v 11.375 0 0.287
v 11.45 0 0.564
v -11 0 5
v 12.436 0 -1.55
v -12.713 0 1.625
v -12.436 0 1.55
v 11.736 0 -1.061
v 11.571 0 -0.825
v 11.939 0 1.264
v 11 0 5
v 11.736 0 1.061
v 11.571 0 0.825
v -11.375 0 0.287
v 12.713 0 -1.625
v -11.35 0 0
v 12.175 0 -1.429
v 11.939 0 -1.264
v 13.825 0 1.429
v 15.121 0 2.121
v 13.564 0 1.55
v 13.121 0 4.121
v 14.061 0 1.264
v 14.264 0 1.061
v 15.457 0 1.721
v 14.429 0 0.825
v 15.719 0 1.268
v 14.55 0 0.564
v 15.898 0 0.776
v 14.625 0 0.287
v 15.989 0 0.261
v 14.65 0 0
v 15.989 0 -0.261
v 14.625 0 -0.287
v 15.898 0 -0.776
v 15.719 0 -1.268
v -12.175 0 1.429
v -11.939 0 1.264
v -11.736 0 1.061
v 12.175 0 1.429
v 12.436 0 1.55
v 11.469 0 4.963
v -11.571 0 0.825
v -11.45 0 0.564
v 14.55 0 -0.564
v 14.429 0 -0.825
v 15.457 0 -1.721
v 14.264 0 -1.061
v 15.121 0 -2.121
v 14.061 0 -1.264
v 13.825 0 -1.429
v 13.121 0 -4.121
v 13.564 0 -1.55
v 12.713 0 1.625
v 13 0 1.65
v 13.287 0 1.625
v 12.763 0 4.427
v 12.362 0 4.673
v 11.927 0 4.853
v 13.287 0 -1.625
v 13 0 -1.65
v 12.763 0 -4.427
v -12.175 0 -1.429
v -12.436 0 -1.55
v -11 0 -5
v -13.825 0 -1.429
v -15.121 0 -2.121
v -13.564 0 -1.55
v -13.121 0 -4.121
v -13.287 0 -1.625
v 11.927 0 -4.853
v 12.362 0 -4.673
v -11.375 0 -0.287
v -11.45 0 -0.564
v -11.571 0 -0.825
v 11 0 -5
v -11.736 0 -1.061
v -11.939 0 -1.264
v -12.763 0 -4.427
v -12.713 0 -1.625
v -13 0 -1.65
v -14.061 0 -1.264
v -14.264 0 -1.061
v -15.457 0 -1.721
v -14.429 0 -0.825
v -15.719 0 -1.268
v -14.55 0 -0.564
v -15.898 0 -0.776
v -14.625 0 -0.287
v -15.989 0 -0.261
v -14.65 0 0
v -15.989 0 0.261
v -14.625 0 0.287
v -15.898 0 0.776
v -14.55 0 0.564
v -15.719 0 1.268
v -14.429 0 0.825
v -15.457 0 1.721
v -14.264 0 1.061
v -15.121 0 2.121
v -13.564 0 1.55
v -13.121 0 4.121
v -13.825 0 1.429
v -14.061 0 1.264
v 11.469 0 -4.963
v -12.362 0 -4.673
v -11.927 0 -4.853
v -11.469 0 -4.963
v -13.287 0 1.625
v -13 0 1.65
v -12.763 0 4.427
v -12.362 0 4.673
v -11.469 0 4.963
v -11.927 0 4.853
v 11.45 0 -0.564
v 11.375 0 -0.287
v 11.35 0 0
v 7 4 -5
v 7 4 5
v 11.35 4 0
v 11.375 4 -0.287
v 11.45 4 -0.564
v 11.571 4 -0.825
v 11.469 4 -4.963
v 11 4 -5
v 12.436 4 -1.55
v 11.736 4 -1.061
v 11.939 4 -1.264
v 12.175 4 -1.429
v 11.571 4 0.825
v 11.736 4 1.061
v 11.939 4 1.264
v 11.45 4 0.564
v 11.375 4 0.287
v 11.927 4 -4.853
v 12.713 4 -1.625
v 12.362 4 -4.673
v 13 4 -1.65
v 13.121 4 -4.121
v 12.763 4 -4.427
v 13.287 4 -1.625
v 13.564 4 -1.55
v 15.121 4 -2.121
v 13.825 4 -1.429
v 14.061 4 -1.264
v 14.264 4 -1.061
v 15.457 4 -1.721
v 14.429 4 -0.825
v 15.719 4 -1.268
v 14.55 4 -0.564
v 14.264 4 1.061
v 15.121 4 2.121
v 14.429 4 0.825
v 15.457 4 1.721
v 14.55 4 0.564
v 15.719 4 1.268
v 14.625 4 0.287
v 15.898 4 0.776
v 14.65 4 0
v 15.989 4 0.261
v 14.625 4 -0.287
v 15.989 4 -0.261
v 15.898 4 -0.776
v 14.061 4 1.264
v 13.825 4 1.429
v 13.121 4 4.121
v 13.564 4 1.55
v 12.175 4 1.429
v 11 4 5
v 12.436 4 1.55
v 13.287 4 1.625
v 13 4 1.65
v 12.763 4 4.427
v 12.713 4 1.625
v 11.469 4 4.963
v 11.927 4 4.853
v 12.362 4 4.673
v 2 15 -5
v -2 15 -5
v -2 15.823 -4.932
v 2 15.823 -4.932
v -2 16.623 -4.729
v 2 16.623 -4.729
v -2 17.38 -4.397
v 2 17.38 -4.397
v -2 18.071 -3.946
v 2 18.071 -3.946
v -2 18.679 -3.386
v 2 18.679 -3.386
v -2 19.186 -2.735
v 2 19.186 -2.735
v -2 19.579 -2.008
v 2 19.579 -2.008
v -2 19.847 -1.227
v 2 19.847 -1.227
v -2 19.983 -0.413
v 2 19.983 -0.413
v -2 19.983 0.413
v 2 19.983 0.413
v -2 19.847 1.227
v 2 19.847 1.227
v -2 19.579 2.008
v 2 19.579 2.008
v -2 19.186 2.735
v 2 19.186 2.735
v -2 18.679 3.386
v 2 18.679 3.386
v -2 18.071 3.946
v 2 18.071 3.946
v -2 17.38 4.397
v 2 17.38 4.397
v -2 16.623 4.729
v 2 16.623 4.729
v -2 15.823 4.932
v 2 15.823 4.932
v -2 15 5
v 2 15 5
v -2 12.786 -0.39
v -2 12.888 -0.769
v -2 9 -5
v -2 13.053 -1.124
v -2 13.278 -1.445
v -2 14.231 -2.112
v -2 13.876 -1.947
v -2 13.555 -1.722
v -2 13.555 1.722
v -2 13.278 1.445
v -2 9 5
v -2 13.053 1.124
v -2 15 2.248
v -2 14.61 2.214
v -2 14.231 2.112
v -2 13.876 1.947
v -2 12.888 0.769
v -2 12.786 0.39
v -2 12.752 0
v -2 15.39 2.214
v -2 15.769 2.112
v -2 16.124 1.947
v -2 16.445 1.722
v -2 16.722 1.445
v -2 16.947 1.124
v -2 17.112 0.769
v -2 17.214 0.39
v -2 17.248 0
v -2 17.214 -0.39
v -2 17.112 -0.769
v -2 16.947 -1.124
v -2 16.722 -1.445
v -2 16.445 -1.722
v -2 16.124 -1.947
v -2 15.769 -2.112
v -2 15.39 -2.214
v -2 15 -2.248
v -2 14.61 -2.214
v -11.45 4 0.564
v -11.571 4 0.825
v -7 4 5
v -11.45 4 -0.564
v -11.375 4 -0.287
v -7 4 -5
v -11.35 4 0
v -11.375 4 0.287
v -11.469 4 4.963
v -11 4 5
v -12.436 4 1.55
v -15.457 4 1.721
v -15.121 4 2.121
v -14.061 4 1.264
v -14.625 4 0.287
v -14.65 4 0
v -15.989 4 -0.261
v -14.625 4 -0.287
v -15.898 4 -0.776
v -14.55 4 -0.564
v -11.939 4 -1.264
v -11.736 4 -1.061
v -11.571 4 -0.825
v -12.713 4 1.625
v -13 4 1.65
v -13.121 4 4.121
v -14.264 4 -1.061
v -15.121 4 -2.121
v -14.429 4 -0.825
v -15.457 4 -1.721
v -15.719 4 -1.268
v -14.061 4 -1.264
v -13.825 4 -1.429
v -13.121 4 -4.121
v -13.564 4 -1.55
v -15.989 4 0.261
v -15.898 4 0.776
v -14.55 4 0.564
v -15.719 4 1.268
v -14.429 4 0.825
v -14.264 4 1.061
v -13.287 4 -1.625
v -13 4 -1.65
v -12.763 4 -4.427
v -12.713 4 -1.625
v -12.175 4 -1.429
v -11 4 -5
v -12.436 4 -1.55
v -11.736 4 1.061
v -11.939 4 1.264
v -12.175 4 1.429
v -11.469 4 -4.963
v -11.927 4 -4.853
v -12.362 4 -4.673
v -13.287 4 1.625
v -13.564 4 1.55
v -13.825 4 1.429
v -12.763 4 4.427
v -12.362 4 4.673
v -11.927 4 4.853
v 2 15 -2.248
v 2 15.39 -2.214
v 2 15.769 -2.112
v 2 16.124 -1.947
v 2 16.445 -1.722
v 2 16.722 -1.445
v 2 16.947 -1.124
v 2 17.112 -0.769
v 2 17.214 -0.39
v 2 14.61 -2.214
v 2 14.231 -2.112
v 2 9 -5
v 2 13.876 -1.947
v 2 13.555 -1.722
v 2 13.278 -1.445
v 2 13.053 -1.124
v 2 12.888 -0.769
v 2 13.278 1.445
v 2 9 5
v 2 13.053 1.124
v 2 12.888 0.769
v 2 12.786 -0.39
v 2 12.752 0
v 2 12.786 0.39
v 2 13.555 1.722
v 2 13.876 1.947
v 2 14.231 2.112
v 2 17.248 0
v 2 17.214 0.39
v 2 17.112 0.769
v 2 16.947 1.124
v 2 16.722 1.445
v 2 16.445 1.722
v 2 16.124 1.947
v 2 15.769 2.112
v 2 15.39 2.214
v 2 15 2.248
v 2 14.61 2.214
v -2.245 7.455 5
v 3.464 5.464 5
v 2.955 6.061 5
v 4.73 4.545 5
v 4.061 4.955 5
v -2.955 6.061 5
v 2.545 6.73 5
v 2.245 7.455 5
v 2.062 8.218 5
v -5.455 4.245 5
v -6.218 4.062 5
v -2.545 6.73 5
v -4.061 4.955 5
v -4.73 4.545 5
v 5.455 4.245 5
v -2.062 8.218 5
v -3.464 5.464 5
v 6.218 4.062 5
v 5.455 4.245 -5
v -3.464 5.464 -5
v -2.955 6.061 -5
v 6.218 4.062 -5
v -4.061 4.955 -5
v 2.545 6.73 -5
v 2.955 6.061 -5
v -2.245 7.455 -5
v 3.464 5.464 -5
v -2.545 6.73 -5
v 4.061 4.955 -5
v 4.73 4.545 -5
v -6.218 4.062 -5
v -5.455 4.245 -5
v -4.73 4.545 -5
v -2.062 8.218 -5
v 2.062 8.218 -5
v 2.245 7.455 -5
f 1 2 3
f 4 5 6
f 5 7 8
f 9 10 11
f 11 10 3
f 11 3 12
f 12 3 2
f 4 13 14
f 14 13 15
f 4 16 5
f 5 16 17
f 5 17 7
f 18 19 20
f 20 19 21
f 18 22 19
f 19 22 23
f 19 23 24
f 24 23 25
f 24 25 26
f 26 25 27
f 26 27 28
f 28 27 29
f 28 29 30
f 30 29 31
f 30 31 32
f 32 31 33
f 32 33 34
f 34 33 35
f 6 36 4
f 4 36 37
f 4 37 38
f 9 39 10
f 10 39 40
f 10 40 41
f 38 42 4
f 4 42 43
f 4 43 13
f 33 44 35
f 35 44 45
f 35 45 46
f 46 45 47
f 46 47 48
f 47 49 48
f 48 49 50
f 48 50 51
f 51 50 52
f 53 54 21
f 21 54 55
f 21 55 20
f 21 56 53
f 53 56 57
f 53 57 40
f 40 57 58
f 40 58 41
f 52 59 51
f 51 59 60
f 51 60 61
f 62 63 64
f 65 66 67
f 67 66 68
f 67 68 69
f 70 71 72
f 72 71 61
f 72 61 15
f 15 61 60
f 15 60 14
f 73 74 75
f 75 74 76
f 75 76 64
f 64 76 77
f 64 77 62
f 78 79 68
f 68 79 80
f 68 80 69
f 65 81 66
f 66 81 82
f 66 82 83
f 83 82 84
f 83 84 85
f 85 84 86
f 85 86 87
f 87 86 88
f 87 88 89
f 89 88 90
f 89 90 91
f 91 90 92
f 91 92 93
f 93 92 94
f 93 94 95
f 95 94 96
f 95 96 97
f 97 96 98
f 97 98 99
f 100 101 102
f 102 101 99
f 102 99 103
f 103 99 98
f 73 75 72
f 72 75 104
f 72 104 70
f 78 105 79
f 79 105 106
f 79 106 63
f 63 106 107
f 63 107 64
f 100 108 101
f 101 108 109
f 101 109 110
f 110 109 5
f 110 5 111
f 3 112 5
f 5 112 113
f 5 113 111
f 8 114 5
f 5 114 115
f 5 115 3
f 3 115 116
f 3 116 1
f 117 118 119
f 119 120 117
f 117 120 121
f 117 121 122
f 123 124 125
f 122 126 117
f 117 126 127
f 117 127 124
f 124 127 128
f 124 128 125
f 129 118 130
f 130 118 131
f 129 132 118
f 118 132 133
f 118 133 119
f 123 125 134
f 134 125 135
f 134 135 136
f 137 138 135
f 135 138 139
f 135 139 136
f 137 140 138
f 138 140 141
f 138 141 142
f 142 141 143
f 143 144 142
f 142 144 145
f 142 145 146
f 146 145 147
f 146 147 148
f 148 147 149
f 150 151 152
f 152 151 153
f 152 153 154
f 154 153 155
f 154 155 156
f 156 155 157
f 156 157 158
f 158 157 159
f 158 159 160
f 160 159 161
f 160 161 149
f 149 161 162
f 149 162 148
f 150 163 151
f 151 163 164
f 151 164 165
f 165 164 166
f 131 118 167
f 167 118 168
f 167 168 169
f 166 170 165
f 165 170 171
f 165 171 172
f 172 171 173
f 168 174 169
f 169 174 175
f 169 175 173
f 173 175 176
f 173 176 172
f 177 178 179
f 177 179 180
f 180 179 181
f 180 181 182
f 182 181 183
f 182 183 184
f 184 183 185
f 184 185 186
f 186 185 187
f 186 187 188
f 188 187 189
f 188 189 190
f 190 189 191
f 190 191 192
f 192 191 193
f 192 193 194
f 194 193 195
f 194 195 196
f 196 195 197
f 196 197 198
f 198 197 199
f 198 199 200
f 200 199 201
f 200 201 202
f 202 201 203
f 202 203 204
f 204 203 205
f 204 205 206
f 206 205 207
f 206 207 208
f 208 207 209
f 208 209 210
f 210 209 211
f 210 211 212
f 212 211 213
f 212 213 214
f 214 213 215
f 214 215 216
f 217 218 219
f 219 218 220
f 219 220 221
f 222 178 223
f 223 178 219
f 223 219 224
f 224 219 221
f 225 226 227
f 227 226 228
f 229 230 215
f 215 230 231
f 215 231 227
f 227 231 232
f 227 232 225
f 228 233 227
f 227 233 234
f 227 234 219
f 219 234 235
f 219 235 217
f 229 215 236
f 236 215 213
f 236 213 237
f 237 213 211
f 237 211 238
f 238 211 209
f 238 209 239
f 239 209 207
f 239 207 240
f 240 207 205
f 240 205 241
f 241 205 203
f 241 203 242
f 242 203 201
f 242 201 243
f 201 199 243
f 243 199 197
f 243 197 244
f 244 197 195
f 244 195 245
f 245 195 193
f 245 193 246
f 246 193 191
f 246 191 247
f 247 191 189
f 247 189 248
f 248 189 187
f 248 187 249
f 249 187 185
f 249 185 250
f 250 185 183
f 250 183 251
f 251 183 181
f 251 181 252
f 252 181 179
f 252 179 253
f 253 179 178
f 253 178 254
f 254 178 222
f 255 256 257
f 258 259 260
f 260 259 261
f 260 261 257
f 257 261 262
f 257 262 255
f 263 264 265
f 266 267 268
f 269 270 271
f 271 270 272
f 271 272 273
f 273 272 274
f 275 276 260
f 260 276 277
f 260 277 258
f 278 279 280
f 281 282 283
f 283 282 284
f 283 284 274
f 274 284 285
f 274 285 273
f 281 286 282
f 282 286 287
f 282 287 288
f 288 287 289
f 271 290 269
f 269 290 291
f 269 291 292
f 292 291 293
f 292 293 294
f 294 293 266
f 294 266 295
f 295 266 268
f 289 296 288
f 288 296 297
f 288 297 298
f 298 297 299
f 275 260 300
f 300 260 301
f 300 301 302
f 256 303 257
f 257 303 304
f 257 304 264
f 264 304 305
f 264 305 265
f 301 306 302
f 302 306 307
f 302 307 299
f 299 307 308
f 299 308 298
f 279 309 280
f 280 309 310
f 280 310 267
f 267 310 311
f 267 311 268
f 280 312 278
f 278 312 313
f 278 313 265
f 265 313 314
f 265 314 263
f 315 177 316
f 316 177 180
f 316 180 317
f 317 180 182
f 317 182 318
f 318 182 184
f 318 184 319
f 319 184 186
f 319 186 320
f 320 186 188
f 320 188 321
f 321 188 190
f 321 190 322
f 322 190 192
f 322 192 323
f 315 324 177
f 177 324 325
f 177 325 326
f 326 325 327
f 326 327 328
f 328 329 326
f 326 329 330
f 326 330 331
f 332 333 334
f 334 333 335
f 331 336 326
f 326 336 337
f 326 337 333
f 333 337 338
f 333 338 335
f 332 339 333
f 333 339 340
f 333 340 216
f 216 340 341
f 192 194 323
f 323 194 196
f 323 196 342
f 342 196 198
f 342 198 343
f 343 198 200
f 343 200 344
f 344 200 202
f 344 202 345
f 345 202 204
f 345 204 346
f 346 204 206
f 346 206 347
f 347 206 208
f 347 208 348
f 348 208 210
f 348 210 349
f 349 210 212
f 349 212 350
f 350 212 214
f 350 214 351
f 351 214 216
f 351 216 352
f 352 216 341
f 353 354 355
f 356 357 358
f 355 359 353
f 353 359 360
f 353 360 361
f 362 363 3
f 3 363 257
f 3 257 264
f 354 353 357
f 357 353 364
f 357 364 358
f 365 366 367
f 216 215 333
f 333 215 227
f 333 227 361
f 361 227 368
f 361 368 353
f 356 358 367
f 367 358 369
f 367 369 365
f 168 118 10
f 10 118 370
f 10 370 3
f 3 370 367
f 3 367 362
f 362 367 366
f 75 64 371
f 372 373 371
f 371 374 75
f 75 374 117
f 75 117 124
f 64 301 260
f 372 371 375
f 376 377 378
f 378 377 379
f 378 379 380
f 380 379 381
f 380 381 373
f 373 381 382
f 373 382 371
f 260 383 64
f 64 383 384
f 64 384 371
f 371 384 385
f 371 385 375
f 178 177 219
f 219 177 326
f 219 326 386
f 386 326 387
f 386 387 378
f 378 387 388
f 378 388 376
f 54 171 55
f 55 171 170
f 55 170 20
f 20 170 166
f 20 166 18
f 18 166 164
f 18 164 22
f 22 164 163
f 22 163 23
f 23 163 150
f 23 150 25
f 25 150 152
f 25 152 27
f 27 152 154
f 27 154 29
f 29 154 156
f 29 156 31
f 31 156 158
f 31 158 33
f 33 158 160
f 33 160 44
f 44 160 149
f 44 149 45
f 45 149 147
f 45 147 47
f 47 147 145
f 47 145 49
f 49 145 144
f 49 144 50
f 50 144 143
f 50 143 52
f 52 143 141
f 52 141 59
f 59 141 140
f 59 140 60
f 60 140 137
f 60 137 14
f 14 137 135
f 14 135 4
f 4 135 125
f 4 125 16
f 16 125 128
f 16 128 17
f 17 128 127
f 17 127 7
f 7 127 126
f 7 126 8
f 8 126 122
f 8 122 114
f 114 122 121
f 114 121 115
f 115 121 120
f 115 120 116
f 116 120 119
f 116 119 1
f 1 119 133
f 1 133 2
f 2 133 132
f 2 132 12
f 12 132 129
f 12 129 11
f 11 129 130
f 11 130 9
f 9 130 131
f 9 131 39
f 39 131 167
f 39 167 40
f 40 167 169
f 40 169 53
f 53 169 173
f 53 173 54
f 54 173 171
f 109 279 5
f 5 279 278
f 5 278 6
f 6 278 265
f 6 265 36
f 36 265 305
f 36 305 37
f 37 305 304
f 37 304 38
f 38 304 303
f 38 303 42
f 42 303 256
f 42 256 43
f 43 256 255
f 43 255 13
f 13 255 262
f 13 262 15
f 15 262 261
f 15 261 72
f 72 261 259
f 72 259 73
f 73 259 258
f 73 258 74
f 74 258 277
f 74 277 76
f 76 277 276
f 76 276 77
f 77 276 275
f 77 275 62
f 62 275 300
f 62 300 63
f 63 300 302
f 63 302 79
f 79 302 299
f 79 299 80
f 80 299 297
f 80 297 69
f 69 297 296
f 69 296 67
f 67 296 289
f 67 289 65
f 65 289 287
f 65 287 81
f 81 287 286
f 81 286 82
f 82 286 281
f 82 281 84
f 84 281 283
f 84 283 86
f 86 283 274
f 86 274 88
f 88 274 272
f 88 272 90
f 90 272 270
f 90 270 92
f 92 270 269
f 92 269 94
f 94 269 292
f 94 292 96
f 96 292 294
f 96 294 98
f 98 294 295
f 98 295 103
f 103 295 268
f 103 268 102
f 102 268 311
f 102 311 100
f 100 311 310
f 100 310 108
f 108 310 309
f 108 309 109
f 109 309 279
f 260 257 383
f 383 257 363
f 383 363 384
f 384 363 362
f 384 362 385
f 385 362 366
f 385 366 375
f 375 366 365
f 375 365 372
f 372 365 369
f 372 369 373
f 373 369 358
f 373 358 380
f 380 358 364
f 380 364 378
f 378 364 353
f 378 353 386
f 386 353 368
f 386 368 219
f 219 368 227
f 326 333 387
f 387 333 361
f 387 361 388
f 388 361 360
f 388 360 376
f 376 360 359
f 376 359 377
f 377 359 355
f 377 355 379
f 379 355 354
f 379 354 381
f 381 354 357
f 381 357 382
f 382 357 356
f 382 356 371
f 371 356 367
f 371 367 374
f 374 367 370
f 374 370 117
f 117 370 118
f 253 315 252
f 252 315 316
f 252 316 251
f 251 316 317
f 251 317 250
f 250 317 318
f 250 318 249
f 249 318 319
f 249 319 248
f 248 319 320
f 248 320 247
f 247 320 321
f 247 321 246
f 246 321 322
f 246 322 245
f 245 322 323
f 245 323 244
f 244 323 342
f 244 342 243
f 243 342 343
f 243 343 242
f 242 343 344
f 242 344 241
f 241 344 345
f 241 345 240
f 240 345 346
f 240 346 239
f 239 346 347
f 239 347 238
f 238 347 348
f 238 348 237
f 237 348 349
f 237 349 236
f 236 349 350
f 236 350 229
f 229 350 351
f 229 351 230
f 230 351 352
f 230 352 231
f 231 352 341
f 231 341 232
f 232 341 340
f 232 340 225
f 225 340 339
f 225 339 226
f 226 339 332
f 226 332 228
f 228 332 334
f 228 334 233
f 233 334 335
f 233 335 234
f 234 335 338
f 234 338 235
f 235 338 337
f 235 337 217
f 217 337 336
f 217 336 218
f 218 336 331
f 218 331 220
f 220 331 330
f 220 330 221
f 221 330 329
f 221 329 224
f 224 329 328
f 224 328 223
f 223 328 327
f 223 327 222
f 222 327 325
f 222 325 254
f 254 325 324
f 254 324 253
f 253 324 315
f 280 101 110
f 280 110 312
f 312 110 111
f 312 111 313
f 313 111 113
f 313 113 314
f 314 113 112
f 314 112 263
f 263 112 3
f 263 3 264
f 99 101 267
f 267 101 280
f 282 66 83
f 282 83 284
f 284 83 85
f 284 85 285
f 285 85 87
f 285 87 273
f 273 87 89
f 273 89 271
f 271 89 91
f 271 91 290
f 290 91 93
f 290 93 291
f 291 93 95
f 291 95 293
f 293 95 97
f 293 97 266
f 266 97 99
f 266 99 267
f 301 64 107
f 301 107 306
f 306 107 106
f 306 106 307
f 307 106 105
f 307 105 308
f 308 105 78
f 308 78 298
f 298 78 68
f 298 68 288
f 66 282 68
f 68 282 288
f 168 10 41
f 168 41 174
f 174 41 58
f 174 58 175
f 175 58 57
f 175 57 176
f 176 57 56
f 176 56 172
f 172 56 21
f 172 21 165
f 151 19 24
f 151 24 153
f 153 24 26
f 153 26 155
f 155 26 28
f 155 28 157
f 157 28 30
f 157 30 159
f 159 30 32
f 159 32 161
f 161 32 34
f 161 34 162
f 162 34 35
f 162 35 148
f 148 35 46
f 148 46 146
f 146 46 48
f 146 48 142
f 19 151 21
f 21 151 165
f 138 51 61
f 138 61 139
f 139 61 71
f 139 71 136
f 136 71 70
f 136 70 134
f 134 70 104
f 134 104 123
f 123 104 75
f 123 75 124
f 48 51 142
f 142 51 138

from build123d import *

# Parameters (mm, degrees)
BOSS_EXTRUDE1_DEPTH         = 5
F_3_3_3_3_DIAMETER_HOLE1_D  = 3.3
FILLET1_RADIUS              = 5
FILLET1_LENGTH              = 4
FILLET2_R                   = 5
F_16_0_177_DIAMETER_HOLE1_D = 4.4958
CUT_EXTRUDE1_DEPTH          = 4


# Read off the part's stored shape, not the designer's step: Cut-Extrude1
with BuildPart() as part:
    # Sketch1 → Boss-Extrude1 (new, symmetric)
    with BuildSketch(Plane.XY):
        Polygon((-16, 0), (16, 0), (16, 4), (2, 4), (2, 20), (-2, 20), (-2, 4), (-16, 4), align=None)
    extrude(amount=BOSS_EXTRUDE1_DEPTH, both=True)

    # Ø3.3 (3.3) Diameter Hole1 (through all)
    with Locations(Plane(origin=(0, 4, 0), x_dir=(1, 0, 0), z_dir=(0, 1, 0))):
        with Locations((-13, 0), (13, 0)):
            Hole(F_3_3_3_3_DIAMETER_HOLE1_D / 2)

    # Fillet1: full round fillet: the end face becomes a half cylinder, R = half its width
    fillet1_face = Plane((0, 20, 0), x_dir=(-1, 0, 0), z_dir=(0, 1, 0))  # on the end face: x along it, z out of the body
    fillet1_slab = fillet1_face.offset(-FILLET1_RADIUS / 2) * Box(FILLET1_LENGTH, 2 * FILLET1_RADIUS, FILLET1_RADIUS, mode=Mode.PRIVATE)  # the body's end, R deep
    fillet1_round = Plane((0, 15, 0), x_dir=(0, 1, 0), z_dir=(-1, 0, 0)) * Cylinder(FILLET1_RADIUS, FILLET1_LENGTH, mode=Mode.PRIVATE)  # its axis R under the face
    add(fillet1_slab - fillet1_round, mode=Mode.SUBTRACT)

    # Fillet2
    fillet2_edges = [part.edges().sort_by_distance(p)[0] for p in [
        (2, 4, 0),
        (-2, 4, 0),
    ]]
    fillet(fillet2_edges, radius=FILLET2_R)

    # #16 (0.177) Diameter Hole1 (through all)
    with Locations(Plane(origin=(2, 0, 0), x_dir=(0, 0, -1), z_dir=(1, 0, 0))):
        with Locations((0, 15)):
            Hole(F_16_0_177_DIAMETER_HOLE1_D / 2)

    # Cut-Extrude1 outline → Cut-Extrude1 (cut)
    with BuildSketch(Plane(origin=(0, 0, 0), x_dir=(1, 0, 0), z_dir=(0, 1, 0))):
        with BuildLine():
            Line((-16, -5), (-11, -5))
            ThreePointArc((-11, -5), (-12.148050297, -4.771638598), (-13.121320344, -4.121320344))
            Line((-13.121320344, -4.121320344), (-15.121320344, -2.121320344))
            ThreePointArc((-15.121320344, -2.121320344), (-15.771638598, -1.148050297), (-16, 0))
            Line((-16, 0), (-16, -5))
        make_face()
        with BuildLine():
            Line((-16, 5), (-16, 0))
            ThreePointArc((-16, 0), (-15.771638598, 1.148050297), (-15.121320344, 2.121320344))
            Line((-15.121320344, 2.121320344), (-13.121320344, 4.121320344))
            ThreePointArc((-13.121320344, 4.121320344), (-12.148050297, 4.771638598), (-11, 5))
            Line((-11, 5), (-16, 5))
        make_face()
    cut_extrude1 = extrude(amount=CUT_EXTRUDE1_DEPTH, mode=Mode.SUBTRACT)

    # Mirror1: Cut-Extrude1 across plane
    add(cut_extrude1.mirror(Plane(origin=(0, 0, 0), x_dir=(0, 0, 1), z_dir=(1, 0, 0))), mode=Mode.SUBTRACT)


solid = part.part
